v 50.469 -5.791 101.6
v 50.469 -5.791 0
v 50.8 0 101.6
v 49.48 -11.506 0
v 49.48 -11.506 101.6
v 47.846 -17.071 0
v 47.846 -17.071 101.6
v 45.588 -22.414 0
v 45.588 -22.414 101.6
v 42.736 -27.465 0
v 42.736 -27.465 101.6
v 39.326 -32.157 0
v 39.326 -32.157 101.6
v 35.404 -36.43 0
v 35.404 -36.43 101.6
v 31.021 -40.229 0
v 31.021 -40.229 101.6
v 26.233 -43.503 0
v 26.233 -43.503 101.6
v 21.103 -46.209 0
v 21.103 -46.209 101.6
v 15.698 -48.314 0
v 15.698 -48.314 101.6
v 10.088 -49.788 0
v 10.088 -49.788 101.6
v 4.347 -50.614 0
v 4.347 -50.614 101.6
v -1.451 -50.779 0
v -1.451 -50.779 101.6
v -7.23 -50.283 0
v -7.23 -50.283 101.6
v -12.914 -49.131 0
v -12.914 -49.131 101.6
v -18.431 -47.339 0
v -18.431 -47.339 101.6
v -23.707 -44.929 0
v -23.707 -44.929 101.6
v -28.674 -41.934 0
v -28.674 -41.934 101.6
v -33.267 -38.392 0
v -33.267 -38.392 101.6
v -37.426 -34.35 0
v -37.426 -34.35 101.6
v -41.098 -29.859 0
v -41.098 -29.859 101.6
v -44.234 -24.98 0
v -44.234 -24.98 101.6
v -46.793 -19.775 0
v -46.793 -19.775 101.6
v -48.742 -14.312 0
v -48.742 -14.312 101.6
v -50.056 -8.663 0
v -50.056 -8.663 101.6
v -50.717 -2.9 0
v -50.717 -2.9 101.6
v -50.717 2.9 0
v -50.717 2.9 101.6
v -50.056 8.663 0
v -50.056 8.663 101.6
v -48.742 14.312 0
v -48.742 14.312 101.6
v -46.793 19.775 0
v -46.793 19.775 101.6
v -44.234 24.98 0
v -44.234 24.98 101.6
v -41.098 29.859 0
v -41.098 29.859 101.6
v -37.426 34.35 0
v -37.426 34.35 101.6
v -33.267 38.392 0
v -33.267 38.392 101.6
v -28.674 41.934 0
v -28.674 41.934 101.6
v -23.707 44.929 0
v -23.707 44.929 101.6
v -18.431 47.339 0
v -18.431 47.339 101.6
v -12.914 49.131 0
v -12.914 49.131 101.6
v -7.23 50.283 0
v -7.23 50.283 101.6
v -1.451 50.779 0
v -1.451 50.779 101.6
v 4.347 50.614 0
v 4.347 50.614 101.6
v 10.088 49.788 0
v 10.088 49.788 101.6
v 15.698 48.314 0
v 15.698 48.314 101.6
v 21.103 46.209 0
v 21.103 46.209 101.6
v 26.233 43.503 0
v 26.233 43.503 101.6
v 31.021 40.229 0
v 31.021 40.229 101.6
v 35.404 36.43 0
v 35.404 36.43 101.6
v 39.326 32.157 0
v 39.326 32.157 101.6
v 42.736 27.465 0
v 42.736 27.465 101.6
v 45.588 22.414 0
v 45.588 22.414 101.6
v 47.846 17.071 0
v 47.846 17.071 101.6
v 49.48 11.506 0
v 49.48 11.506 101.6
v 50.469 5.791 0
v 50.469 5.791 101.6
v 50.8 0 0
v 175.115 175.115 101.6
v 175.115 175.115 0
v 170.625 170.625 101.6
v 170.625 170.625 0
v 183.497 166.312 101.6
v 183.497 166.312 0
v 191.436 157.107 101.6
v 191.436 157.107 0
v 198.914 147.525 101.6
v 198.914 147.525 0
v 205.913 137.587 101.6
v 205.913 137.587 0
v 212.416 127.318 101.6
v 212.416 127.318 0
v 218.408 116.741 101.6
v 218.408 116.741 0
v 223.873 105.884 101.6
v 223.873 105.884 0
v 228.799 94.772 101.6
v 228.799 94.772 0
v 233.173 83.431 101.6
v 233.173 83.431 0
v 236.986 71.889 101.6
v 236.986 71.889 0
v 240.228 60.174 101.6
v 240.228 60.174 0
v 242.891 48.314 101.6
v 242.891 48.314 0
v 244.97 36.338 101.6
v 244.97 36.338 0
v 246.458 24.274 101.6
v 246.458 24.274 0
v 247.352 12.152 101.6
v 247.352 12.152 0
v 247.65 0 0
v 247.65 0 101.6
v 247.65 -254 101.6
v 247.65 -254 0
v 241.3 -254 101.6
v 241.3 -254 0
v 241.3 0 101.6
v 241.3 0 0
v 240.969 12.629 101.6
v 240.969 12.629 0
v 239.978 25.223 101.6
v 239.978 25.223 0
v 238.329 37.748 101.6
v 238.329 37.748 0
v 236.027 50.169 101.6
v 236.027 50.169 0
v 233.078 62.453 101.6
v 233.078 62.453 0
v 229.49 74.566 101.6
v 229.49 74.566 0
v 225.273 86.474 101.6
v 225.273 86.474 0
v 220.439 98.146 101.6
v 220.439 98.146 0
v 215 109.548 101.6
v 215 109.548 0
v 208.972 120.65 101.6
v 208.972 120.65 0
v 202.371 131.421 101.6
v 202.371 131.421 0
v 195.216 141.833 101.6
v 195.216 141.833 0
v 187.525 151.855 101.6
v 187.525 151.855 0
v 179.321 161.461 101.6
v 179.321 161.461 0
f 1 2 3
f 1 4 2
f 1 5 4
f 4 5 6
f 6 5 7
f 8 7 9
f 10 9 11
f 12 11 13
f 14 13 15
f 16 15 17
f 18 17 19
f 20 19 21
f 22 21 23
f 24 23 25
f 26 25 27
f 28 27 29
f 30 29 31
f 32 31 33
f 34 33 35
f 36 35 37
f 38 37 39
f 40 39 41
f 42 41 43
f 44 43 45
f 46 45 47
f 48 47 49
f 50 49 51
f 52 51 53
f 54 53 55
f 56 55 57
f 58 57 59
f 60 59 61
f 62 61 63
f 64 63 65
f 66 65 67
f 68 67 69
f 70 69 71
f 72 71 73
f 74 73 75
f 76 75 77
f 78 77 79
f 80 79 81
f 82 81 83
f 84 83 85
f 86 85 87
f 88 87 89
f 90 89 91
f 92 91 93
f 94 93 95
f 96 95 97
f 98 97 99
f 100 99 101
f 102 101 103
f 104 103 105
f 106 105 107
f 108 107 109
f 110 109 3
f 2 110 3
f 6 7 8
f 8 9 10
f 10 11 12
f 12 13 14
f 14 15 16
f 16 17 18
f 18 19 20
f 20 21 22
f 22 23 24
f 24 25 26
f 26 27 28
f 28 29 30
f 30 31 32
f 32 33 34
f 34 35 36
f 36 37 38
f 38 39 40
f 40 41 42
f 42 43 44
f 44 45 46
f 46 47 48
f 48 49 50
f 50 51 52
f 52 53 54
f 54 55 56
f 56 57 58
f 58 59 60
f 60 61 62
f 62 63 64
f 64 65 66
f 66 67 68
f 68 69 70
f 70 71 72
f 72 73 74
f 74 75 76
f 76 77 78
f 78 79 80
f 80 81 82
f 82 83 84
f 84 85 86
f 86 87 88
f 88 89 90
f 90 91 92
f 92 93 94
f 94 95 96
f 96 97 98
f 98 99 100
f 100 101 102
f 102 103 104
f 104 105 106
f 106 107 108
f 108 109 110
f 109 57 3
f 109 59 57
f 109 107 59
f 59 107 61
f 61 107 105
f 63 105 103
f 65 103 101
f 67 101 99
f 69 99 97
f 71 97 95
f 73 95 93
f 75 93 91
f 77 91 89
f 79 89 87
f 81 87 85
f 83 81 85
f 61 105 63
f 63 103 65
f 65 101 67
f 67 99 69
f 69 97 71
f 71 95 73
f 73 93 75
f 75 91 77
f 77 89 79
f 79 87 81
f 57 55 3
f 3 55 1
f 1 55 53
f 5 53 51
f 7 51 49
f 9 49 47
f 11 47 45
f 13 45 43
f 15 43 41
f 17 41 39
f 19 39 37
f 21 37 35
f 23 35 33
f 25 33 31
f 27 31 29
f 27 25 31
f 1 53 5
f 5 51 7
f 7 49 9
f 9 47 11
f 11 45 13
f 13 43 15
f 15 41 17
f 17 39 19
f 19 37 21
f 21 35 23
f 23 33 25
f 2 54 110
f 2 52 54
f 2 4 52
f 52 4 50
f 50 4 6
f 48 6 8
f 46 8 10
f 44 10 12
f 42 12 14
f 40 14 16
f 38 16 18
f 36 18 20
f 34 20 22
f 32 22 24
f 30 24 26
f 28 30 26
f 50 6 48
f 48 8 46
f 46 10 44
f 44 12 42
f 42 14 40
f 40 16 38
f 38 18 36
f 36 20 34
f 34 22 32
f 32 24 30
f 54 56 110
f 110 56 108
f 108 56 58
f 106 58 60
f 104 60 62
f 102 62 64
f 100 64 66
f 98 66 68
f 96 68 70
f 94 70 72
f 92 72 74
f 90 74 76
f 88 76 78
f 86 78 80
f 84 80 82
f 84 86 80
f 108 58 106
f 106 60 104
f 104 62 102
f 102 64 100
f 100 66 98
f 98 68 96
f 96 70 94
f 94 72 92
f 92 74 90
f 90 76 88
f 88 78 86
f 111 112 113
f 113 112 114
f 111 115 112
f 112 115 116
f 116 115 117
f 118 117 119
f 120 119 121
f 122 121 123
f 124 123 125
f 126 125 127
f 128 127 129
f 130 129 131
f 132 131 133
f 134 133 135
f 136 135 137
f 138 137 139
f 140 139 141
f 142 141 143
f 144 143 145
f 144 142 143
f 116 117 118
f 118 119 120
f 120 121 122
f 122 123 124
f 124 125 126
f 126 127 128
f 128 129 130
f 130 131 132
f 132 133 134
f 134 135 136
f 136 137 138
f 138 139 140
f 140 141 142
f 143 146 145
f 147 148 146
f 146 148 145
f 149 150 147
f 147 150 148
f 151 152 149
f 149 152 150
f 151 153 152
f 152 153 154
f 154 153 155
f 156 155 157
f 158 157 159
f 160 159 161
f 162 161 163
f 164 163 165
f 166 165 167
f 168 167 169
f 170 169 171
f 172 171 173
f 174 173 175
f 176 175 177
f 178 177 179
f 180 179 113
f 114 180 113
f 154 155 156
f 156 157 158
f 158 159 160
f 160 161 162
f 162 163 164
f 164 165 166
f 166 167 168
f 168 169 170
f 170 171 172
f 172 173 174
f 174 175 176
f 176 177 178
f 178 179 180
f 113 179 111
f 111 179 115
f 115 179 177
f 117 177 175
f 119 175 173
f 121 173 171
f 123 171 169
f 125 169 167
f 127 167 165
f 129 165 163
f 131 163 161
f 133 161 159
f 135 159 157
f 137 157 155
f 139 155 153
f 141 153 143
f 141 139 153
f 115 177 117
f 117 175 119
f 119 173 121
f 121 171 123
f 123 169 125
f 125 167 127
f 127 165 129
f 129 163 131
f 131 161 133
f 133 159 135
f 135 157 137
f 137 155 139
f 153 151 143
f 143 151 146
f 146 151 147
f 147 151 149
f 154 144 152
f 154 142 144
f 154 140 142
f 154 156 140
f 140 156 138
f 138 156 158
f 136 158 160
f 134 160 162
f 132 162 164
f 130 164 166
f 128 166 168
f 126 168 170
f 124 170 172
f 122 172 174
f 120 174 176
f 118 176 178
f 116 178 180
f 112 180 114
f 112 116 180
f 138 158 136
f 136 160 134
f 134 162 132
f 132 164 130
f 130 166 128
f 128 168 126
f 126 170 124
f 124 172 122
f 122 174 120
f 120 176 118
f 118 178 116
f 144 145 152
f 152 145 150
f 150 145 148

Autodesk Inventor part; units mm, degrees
ref_plane "YZ Plane" through (0, 0, 0) normal (1, 0, 0) x (0, 1, 0)
ref_plane "XZ Plane" through (0, 0, 0) normal (0, 1, 0) x (-1, 0, 0)
ref_plane "XY Plane" through (0, 0, 0) normal (0, 0, 1) x (1, 0, 0)
sketch "Sketch1" plane through (0, 0, 0) normal (0, 0, 1) x (1, 0, 0)
  arc A0 (241.3, 0) -> (170.6249, 170.6249) centre (0, 0) ccw
  arc A1 (247.65, 0) -> (175.115, 175.115) centre (0, 0) ccw
  line L0 (175.115, 175.115) -> (170.6249, 170.6249)
  line L1 (170.6249, 170.6249) -> (0, 0) construction
  circle A2 centre (0, 0) radius 50.8
  line L2 (241.3, 0) -> (241.3, -254)
  line L3 (241.3, -254) -> (247.65, -254)
  line L4 (247.65, -254) -> (247.65, 0)
  line L5 (241.3, 0) -> (247.65, 0) construction
  dimension "d0" = 241.3
  dimension "d1" = 247.65
  dimension "d3" = 101.6
  dimension "d4" = 254
  dimension "d5" = 45
extrude "Extrusion1" add sketch "Sketch1" along normal blind 101.6
properties part number "ShooterWheelrConcept"
